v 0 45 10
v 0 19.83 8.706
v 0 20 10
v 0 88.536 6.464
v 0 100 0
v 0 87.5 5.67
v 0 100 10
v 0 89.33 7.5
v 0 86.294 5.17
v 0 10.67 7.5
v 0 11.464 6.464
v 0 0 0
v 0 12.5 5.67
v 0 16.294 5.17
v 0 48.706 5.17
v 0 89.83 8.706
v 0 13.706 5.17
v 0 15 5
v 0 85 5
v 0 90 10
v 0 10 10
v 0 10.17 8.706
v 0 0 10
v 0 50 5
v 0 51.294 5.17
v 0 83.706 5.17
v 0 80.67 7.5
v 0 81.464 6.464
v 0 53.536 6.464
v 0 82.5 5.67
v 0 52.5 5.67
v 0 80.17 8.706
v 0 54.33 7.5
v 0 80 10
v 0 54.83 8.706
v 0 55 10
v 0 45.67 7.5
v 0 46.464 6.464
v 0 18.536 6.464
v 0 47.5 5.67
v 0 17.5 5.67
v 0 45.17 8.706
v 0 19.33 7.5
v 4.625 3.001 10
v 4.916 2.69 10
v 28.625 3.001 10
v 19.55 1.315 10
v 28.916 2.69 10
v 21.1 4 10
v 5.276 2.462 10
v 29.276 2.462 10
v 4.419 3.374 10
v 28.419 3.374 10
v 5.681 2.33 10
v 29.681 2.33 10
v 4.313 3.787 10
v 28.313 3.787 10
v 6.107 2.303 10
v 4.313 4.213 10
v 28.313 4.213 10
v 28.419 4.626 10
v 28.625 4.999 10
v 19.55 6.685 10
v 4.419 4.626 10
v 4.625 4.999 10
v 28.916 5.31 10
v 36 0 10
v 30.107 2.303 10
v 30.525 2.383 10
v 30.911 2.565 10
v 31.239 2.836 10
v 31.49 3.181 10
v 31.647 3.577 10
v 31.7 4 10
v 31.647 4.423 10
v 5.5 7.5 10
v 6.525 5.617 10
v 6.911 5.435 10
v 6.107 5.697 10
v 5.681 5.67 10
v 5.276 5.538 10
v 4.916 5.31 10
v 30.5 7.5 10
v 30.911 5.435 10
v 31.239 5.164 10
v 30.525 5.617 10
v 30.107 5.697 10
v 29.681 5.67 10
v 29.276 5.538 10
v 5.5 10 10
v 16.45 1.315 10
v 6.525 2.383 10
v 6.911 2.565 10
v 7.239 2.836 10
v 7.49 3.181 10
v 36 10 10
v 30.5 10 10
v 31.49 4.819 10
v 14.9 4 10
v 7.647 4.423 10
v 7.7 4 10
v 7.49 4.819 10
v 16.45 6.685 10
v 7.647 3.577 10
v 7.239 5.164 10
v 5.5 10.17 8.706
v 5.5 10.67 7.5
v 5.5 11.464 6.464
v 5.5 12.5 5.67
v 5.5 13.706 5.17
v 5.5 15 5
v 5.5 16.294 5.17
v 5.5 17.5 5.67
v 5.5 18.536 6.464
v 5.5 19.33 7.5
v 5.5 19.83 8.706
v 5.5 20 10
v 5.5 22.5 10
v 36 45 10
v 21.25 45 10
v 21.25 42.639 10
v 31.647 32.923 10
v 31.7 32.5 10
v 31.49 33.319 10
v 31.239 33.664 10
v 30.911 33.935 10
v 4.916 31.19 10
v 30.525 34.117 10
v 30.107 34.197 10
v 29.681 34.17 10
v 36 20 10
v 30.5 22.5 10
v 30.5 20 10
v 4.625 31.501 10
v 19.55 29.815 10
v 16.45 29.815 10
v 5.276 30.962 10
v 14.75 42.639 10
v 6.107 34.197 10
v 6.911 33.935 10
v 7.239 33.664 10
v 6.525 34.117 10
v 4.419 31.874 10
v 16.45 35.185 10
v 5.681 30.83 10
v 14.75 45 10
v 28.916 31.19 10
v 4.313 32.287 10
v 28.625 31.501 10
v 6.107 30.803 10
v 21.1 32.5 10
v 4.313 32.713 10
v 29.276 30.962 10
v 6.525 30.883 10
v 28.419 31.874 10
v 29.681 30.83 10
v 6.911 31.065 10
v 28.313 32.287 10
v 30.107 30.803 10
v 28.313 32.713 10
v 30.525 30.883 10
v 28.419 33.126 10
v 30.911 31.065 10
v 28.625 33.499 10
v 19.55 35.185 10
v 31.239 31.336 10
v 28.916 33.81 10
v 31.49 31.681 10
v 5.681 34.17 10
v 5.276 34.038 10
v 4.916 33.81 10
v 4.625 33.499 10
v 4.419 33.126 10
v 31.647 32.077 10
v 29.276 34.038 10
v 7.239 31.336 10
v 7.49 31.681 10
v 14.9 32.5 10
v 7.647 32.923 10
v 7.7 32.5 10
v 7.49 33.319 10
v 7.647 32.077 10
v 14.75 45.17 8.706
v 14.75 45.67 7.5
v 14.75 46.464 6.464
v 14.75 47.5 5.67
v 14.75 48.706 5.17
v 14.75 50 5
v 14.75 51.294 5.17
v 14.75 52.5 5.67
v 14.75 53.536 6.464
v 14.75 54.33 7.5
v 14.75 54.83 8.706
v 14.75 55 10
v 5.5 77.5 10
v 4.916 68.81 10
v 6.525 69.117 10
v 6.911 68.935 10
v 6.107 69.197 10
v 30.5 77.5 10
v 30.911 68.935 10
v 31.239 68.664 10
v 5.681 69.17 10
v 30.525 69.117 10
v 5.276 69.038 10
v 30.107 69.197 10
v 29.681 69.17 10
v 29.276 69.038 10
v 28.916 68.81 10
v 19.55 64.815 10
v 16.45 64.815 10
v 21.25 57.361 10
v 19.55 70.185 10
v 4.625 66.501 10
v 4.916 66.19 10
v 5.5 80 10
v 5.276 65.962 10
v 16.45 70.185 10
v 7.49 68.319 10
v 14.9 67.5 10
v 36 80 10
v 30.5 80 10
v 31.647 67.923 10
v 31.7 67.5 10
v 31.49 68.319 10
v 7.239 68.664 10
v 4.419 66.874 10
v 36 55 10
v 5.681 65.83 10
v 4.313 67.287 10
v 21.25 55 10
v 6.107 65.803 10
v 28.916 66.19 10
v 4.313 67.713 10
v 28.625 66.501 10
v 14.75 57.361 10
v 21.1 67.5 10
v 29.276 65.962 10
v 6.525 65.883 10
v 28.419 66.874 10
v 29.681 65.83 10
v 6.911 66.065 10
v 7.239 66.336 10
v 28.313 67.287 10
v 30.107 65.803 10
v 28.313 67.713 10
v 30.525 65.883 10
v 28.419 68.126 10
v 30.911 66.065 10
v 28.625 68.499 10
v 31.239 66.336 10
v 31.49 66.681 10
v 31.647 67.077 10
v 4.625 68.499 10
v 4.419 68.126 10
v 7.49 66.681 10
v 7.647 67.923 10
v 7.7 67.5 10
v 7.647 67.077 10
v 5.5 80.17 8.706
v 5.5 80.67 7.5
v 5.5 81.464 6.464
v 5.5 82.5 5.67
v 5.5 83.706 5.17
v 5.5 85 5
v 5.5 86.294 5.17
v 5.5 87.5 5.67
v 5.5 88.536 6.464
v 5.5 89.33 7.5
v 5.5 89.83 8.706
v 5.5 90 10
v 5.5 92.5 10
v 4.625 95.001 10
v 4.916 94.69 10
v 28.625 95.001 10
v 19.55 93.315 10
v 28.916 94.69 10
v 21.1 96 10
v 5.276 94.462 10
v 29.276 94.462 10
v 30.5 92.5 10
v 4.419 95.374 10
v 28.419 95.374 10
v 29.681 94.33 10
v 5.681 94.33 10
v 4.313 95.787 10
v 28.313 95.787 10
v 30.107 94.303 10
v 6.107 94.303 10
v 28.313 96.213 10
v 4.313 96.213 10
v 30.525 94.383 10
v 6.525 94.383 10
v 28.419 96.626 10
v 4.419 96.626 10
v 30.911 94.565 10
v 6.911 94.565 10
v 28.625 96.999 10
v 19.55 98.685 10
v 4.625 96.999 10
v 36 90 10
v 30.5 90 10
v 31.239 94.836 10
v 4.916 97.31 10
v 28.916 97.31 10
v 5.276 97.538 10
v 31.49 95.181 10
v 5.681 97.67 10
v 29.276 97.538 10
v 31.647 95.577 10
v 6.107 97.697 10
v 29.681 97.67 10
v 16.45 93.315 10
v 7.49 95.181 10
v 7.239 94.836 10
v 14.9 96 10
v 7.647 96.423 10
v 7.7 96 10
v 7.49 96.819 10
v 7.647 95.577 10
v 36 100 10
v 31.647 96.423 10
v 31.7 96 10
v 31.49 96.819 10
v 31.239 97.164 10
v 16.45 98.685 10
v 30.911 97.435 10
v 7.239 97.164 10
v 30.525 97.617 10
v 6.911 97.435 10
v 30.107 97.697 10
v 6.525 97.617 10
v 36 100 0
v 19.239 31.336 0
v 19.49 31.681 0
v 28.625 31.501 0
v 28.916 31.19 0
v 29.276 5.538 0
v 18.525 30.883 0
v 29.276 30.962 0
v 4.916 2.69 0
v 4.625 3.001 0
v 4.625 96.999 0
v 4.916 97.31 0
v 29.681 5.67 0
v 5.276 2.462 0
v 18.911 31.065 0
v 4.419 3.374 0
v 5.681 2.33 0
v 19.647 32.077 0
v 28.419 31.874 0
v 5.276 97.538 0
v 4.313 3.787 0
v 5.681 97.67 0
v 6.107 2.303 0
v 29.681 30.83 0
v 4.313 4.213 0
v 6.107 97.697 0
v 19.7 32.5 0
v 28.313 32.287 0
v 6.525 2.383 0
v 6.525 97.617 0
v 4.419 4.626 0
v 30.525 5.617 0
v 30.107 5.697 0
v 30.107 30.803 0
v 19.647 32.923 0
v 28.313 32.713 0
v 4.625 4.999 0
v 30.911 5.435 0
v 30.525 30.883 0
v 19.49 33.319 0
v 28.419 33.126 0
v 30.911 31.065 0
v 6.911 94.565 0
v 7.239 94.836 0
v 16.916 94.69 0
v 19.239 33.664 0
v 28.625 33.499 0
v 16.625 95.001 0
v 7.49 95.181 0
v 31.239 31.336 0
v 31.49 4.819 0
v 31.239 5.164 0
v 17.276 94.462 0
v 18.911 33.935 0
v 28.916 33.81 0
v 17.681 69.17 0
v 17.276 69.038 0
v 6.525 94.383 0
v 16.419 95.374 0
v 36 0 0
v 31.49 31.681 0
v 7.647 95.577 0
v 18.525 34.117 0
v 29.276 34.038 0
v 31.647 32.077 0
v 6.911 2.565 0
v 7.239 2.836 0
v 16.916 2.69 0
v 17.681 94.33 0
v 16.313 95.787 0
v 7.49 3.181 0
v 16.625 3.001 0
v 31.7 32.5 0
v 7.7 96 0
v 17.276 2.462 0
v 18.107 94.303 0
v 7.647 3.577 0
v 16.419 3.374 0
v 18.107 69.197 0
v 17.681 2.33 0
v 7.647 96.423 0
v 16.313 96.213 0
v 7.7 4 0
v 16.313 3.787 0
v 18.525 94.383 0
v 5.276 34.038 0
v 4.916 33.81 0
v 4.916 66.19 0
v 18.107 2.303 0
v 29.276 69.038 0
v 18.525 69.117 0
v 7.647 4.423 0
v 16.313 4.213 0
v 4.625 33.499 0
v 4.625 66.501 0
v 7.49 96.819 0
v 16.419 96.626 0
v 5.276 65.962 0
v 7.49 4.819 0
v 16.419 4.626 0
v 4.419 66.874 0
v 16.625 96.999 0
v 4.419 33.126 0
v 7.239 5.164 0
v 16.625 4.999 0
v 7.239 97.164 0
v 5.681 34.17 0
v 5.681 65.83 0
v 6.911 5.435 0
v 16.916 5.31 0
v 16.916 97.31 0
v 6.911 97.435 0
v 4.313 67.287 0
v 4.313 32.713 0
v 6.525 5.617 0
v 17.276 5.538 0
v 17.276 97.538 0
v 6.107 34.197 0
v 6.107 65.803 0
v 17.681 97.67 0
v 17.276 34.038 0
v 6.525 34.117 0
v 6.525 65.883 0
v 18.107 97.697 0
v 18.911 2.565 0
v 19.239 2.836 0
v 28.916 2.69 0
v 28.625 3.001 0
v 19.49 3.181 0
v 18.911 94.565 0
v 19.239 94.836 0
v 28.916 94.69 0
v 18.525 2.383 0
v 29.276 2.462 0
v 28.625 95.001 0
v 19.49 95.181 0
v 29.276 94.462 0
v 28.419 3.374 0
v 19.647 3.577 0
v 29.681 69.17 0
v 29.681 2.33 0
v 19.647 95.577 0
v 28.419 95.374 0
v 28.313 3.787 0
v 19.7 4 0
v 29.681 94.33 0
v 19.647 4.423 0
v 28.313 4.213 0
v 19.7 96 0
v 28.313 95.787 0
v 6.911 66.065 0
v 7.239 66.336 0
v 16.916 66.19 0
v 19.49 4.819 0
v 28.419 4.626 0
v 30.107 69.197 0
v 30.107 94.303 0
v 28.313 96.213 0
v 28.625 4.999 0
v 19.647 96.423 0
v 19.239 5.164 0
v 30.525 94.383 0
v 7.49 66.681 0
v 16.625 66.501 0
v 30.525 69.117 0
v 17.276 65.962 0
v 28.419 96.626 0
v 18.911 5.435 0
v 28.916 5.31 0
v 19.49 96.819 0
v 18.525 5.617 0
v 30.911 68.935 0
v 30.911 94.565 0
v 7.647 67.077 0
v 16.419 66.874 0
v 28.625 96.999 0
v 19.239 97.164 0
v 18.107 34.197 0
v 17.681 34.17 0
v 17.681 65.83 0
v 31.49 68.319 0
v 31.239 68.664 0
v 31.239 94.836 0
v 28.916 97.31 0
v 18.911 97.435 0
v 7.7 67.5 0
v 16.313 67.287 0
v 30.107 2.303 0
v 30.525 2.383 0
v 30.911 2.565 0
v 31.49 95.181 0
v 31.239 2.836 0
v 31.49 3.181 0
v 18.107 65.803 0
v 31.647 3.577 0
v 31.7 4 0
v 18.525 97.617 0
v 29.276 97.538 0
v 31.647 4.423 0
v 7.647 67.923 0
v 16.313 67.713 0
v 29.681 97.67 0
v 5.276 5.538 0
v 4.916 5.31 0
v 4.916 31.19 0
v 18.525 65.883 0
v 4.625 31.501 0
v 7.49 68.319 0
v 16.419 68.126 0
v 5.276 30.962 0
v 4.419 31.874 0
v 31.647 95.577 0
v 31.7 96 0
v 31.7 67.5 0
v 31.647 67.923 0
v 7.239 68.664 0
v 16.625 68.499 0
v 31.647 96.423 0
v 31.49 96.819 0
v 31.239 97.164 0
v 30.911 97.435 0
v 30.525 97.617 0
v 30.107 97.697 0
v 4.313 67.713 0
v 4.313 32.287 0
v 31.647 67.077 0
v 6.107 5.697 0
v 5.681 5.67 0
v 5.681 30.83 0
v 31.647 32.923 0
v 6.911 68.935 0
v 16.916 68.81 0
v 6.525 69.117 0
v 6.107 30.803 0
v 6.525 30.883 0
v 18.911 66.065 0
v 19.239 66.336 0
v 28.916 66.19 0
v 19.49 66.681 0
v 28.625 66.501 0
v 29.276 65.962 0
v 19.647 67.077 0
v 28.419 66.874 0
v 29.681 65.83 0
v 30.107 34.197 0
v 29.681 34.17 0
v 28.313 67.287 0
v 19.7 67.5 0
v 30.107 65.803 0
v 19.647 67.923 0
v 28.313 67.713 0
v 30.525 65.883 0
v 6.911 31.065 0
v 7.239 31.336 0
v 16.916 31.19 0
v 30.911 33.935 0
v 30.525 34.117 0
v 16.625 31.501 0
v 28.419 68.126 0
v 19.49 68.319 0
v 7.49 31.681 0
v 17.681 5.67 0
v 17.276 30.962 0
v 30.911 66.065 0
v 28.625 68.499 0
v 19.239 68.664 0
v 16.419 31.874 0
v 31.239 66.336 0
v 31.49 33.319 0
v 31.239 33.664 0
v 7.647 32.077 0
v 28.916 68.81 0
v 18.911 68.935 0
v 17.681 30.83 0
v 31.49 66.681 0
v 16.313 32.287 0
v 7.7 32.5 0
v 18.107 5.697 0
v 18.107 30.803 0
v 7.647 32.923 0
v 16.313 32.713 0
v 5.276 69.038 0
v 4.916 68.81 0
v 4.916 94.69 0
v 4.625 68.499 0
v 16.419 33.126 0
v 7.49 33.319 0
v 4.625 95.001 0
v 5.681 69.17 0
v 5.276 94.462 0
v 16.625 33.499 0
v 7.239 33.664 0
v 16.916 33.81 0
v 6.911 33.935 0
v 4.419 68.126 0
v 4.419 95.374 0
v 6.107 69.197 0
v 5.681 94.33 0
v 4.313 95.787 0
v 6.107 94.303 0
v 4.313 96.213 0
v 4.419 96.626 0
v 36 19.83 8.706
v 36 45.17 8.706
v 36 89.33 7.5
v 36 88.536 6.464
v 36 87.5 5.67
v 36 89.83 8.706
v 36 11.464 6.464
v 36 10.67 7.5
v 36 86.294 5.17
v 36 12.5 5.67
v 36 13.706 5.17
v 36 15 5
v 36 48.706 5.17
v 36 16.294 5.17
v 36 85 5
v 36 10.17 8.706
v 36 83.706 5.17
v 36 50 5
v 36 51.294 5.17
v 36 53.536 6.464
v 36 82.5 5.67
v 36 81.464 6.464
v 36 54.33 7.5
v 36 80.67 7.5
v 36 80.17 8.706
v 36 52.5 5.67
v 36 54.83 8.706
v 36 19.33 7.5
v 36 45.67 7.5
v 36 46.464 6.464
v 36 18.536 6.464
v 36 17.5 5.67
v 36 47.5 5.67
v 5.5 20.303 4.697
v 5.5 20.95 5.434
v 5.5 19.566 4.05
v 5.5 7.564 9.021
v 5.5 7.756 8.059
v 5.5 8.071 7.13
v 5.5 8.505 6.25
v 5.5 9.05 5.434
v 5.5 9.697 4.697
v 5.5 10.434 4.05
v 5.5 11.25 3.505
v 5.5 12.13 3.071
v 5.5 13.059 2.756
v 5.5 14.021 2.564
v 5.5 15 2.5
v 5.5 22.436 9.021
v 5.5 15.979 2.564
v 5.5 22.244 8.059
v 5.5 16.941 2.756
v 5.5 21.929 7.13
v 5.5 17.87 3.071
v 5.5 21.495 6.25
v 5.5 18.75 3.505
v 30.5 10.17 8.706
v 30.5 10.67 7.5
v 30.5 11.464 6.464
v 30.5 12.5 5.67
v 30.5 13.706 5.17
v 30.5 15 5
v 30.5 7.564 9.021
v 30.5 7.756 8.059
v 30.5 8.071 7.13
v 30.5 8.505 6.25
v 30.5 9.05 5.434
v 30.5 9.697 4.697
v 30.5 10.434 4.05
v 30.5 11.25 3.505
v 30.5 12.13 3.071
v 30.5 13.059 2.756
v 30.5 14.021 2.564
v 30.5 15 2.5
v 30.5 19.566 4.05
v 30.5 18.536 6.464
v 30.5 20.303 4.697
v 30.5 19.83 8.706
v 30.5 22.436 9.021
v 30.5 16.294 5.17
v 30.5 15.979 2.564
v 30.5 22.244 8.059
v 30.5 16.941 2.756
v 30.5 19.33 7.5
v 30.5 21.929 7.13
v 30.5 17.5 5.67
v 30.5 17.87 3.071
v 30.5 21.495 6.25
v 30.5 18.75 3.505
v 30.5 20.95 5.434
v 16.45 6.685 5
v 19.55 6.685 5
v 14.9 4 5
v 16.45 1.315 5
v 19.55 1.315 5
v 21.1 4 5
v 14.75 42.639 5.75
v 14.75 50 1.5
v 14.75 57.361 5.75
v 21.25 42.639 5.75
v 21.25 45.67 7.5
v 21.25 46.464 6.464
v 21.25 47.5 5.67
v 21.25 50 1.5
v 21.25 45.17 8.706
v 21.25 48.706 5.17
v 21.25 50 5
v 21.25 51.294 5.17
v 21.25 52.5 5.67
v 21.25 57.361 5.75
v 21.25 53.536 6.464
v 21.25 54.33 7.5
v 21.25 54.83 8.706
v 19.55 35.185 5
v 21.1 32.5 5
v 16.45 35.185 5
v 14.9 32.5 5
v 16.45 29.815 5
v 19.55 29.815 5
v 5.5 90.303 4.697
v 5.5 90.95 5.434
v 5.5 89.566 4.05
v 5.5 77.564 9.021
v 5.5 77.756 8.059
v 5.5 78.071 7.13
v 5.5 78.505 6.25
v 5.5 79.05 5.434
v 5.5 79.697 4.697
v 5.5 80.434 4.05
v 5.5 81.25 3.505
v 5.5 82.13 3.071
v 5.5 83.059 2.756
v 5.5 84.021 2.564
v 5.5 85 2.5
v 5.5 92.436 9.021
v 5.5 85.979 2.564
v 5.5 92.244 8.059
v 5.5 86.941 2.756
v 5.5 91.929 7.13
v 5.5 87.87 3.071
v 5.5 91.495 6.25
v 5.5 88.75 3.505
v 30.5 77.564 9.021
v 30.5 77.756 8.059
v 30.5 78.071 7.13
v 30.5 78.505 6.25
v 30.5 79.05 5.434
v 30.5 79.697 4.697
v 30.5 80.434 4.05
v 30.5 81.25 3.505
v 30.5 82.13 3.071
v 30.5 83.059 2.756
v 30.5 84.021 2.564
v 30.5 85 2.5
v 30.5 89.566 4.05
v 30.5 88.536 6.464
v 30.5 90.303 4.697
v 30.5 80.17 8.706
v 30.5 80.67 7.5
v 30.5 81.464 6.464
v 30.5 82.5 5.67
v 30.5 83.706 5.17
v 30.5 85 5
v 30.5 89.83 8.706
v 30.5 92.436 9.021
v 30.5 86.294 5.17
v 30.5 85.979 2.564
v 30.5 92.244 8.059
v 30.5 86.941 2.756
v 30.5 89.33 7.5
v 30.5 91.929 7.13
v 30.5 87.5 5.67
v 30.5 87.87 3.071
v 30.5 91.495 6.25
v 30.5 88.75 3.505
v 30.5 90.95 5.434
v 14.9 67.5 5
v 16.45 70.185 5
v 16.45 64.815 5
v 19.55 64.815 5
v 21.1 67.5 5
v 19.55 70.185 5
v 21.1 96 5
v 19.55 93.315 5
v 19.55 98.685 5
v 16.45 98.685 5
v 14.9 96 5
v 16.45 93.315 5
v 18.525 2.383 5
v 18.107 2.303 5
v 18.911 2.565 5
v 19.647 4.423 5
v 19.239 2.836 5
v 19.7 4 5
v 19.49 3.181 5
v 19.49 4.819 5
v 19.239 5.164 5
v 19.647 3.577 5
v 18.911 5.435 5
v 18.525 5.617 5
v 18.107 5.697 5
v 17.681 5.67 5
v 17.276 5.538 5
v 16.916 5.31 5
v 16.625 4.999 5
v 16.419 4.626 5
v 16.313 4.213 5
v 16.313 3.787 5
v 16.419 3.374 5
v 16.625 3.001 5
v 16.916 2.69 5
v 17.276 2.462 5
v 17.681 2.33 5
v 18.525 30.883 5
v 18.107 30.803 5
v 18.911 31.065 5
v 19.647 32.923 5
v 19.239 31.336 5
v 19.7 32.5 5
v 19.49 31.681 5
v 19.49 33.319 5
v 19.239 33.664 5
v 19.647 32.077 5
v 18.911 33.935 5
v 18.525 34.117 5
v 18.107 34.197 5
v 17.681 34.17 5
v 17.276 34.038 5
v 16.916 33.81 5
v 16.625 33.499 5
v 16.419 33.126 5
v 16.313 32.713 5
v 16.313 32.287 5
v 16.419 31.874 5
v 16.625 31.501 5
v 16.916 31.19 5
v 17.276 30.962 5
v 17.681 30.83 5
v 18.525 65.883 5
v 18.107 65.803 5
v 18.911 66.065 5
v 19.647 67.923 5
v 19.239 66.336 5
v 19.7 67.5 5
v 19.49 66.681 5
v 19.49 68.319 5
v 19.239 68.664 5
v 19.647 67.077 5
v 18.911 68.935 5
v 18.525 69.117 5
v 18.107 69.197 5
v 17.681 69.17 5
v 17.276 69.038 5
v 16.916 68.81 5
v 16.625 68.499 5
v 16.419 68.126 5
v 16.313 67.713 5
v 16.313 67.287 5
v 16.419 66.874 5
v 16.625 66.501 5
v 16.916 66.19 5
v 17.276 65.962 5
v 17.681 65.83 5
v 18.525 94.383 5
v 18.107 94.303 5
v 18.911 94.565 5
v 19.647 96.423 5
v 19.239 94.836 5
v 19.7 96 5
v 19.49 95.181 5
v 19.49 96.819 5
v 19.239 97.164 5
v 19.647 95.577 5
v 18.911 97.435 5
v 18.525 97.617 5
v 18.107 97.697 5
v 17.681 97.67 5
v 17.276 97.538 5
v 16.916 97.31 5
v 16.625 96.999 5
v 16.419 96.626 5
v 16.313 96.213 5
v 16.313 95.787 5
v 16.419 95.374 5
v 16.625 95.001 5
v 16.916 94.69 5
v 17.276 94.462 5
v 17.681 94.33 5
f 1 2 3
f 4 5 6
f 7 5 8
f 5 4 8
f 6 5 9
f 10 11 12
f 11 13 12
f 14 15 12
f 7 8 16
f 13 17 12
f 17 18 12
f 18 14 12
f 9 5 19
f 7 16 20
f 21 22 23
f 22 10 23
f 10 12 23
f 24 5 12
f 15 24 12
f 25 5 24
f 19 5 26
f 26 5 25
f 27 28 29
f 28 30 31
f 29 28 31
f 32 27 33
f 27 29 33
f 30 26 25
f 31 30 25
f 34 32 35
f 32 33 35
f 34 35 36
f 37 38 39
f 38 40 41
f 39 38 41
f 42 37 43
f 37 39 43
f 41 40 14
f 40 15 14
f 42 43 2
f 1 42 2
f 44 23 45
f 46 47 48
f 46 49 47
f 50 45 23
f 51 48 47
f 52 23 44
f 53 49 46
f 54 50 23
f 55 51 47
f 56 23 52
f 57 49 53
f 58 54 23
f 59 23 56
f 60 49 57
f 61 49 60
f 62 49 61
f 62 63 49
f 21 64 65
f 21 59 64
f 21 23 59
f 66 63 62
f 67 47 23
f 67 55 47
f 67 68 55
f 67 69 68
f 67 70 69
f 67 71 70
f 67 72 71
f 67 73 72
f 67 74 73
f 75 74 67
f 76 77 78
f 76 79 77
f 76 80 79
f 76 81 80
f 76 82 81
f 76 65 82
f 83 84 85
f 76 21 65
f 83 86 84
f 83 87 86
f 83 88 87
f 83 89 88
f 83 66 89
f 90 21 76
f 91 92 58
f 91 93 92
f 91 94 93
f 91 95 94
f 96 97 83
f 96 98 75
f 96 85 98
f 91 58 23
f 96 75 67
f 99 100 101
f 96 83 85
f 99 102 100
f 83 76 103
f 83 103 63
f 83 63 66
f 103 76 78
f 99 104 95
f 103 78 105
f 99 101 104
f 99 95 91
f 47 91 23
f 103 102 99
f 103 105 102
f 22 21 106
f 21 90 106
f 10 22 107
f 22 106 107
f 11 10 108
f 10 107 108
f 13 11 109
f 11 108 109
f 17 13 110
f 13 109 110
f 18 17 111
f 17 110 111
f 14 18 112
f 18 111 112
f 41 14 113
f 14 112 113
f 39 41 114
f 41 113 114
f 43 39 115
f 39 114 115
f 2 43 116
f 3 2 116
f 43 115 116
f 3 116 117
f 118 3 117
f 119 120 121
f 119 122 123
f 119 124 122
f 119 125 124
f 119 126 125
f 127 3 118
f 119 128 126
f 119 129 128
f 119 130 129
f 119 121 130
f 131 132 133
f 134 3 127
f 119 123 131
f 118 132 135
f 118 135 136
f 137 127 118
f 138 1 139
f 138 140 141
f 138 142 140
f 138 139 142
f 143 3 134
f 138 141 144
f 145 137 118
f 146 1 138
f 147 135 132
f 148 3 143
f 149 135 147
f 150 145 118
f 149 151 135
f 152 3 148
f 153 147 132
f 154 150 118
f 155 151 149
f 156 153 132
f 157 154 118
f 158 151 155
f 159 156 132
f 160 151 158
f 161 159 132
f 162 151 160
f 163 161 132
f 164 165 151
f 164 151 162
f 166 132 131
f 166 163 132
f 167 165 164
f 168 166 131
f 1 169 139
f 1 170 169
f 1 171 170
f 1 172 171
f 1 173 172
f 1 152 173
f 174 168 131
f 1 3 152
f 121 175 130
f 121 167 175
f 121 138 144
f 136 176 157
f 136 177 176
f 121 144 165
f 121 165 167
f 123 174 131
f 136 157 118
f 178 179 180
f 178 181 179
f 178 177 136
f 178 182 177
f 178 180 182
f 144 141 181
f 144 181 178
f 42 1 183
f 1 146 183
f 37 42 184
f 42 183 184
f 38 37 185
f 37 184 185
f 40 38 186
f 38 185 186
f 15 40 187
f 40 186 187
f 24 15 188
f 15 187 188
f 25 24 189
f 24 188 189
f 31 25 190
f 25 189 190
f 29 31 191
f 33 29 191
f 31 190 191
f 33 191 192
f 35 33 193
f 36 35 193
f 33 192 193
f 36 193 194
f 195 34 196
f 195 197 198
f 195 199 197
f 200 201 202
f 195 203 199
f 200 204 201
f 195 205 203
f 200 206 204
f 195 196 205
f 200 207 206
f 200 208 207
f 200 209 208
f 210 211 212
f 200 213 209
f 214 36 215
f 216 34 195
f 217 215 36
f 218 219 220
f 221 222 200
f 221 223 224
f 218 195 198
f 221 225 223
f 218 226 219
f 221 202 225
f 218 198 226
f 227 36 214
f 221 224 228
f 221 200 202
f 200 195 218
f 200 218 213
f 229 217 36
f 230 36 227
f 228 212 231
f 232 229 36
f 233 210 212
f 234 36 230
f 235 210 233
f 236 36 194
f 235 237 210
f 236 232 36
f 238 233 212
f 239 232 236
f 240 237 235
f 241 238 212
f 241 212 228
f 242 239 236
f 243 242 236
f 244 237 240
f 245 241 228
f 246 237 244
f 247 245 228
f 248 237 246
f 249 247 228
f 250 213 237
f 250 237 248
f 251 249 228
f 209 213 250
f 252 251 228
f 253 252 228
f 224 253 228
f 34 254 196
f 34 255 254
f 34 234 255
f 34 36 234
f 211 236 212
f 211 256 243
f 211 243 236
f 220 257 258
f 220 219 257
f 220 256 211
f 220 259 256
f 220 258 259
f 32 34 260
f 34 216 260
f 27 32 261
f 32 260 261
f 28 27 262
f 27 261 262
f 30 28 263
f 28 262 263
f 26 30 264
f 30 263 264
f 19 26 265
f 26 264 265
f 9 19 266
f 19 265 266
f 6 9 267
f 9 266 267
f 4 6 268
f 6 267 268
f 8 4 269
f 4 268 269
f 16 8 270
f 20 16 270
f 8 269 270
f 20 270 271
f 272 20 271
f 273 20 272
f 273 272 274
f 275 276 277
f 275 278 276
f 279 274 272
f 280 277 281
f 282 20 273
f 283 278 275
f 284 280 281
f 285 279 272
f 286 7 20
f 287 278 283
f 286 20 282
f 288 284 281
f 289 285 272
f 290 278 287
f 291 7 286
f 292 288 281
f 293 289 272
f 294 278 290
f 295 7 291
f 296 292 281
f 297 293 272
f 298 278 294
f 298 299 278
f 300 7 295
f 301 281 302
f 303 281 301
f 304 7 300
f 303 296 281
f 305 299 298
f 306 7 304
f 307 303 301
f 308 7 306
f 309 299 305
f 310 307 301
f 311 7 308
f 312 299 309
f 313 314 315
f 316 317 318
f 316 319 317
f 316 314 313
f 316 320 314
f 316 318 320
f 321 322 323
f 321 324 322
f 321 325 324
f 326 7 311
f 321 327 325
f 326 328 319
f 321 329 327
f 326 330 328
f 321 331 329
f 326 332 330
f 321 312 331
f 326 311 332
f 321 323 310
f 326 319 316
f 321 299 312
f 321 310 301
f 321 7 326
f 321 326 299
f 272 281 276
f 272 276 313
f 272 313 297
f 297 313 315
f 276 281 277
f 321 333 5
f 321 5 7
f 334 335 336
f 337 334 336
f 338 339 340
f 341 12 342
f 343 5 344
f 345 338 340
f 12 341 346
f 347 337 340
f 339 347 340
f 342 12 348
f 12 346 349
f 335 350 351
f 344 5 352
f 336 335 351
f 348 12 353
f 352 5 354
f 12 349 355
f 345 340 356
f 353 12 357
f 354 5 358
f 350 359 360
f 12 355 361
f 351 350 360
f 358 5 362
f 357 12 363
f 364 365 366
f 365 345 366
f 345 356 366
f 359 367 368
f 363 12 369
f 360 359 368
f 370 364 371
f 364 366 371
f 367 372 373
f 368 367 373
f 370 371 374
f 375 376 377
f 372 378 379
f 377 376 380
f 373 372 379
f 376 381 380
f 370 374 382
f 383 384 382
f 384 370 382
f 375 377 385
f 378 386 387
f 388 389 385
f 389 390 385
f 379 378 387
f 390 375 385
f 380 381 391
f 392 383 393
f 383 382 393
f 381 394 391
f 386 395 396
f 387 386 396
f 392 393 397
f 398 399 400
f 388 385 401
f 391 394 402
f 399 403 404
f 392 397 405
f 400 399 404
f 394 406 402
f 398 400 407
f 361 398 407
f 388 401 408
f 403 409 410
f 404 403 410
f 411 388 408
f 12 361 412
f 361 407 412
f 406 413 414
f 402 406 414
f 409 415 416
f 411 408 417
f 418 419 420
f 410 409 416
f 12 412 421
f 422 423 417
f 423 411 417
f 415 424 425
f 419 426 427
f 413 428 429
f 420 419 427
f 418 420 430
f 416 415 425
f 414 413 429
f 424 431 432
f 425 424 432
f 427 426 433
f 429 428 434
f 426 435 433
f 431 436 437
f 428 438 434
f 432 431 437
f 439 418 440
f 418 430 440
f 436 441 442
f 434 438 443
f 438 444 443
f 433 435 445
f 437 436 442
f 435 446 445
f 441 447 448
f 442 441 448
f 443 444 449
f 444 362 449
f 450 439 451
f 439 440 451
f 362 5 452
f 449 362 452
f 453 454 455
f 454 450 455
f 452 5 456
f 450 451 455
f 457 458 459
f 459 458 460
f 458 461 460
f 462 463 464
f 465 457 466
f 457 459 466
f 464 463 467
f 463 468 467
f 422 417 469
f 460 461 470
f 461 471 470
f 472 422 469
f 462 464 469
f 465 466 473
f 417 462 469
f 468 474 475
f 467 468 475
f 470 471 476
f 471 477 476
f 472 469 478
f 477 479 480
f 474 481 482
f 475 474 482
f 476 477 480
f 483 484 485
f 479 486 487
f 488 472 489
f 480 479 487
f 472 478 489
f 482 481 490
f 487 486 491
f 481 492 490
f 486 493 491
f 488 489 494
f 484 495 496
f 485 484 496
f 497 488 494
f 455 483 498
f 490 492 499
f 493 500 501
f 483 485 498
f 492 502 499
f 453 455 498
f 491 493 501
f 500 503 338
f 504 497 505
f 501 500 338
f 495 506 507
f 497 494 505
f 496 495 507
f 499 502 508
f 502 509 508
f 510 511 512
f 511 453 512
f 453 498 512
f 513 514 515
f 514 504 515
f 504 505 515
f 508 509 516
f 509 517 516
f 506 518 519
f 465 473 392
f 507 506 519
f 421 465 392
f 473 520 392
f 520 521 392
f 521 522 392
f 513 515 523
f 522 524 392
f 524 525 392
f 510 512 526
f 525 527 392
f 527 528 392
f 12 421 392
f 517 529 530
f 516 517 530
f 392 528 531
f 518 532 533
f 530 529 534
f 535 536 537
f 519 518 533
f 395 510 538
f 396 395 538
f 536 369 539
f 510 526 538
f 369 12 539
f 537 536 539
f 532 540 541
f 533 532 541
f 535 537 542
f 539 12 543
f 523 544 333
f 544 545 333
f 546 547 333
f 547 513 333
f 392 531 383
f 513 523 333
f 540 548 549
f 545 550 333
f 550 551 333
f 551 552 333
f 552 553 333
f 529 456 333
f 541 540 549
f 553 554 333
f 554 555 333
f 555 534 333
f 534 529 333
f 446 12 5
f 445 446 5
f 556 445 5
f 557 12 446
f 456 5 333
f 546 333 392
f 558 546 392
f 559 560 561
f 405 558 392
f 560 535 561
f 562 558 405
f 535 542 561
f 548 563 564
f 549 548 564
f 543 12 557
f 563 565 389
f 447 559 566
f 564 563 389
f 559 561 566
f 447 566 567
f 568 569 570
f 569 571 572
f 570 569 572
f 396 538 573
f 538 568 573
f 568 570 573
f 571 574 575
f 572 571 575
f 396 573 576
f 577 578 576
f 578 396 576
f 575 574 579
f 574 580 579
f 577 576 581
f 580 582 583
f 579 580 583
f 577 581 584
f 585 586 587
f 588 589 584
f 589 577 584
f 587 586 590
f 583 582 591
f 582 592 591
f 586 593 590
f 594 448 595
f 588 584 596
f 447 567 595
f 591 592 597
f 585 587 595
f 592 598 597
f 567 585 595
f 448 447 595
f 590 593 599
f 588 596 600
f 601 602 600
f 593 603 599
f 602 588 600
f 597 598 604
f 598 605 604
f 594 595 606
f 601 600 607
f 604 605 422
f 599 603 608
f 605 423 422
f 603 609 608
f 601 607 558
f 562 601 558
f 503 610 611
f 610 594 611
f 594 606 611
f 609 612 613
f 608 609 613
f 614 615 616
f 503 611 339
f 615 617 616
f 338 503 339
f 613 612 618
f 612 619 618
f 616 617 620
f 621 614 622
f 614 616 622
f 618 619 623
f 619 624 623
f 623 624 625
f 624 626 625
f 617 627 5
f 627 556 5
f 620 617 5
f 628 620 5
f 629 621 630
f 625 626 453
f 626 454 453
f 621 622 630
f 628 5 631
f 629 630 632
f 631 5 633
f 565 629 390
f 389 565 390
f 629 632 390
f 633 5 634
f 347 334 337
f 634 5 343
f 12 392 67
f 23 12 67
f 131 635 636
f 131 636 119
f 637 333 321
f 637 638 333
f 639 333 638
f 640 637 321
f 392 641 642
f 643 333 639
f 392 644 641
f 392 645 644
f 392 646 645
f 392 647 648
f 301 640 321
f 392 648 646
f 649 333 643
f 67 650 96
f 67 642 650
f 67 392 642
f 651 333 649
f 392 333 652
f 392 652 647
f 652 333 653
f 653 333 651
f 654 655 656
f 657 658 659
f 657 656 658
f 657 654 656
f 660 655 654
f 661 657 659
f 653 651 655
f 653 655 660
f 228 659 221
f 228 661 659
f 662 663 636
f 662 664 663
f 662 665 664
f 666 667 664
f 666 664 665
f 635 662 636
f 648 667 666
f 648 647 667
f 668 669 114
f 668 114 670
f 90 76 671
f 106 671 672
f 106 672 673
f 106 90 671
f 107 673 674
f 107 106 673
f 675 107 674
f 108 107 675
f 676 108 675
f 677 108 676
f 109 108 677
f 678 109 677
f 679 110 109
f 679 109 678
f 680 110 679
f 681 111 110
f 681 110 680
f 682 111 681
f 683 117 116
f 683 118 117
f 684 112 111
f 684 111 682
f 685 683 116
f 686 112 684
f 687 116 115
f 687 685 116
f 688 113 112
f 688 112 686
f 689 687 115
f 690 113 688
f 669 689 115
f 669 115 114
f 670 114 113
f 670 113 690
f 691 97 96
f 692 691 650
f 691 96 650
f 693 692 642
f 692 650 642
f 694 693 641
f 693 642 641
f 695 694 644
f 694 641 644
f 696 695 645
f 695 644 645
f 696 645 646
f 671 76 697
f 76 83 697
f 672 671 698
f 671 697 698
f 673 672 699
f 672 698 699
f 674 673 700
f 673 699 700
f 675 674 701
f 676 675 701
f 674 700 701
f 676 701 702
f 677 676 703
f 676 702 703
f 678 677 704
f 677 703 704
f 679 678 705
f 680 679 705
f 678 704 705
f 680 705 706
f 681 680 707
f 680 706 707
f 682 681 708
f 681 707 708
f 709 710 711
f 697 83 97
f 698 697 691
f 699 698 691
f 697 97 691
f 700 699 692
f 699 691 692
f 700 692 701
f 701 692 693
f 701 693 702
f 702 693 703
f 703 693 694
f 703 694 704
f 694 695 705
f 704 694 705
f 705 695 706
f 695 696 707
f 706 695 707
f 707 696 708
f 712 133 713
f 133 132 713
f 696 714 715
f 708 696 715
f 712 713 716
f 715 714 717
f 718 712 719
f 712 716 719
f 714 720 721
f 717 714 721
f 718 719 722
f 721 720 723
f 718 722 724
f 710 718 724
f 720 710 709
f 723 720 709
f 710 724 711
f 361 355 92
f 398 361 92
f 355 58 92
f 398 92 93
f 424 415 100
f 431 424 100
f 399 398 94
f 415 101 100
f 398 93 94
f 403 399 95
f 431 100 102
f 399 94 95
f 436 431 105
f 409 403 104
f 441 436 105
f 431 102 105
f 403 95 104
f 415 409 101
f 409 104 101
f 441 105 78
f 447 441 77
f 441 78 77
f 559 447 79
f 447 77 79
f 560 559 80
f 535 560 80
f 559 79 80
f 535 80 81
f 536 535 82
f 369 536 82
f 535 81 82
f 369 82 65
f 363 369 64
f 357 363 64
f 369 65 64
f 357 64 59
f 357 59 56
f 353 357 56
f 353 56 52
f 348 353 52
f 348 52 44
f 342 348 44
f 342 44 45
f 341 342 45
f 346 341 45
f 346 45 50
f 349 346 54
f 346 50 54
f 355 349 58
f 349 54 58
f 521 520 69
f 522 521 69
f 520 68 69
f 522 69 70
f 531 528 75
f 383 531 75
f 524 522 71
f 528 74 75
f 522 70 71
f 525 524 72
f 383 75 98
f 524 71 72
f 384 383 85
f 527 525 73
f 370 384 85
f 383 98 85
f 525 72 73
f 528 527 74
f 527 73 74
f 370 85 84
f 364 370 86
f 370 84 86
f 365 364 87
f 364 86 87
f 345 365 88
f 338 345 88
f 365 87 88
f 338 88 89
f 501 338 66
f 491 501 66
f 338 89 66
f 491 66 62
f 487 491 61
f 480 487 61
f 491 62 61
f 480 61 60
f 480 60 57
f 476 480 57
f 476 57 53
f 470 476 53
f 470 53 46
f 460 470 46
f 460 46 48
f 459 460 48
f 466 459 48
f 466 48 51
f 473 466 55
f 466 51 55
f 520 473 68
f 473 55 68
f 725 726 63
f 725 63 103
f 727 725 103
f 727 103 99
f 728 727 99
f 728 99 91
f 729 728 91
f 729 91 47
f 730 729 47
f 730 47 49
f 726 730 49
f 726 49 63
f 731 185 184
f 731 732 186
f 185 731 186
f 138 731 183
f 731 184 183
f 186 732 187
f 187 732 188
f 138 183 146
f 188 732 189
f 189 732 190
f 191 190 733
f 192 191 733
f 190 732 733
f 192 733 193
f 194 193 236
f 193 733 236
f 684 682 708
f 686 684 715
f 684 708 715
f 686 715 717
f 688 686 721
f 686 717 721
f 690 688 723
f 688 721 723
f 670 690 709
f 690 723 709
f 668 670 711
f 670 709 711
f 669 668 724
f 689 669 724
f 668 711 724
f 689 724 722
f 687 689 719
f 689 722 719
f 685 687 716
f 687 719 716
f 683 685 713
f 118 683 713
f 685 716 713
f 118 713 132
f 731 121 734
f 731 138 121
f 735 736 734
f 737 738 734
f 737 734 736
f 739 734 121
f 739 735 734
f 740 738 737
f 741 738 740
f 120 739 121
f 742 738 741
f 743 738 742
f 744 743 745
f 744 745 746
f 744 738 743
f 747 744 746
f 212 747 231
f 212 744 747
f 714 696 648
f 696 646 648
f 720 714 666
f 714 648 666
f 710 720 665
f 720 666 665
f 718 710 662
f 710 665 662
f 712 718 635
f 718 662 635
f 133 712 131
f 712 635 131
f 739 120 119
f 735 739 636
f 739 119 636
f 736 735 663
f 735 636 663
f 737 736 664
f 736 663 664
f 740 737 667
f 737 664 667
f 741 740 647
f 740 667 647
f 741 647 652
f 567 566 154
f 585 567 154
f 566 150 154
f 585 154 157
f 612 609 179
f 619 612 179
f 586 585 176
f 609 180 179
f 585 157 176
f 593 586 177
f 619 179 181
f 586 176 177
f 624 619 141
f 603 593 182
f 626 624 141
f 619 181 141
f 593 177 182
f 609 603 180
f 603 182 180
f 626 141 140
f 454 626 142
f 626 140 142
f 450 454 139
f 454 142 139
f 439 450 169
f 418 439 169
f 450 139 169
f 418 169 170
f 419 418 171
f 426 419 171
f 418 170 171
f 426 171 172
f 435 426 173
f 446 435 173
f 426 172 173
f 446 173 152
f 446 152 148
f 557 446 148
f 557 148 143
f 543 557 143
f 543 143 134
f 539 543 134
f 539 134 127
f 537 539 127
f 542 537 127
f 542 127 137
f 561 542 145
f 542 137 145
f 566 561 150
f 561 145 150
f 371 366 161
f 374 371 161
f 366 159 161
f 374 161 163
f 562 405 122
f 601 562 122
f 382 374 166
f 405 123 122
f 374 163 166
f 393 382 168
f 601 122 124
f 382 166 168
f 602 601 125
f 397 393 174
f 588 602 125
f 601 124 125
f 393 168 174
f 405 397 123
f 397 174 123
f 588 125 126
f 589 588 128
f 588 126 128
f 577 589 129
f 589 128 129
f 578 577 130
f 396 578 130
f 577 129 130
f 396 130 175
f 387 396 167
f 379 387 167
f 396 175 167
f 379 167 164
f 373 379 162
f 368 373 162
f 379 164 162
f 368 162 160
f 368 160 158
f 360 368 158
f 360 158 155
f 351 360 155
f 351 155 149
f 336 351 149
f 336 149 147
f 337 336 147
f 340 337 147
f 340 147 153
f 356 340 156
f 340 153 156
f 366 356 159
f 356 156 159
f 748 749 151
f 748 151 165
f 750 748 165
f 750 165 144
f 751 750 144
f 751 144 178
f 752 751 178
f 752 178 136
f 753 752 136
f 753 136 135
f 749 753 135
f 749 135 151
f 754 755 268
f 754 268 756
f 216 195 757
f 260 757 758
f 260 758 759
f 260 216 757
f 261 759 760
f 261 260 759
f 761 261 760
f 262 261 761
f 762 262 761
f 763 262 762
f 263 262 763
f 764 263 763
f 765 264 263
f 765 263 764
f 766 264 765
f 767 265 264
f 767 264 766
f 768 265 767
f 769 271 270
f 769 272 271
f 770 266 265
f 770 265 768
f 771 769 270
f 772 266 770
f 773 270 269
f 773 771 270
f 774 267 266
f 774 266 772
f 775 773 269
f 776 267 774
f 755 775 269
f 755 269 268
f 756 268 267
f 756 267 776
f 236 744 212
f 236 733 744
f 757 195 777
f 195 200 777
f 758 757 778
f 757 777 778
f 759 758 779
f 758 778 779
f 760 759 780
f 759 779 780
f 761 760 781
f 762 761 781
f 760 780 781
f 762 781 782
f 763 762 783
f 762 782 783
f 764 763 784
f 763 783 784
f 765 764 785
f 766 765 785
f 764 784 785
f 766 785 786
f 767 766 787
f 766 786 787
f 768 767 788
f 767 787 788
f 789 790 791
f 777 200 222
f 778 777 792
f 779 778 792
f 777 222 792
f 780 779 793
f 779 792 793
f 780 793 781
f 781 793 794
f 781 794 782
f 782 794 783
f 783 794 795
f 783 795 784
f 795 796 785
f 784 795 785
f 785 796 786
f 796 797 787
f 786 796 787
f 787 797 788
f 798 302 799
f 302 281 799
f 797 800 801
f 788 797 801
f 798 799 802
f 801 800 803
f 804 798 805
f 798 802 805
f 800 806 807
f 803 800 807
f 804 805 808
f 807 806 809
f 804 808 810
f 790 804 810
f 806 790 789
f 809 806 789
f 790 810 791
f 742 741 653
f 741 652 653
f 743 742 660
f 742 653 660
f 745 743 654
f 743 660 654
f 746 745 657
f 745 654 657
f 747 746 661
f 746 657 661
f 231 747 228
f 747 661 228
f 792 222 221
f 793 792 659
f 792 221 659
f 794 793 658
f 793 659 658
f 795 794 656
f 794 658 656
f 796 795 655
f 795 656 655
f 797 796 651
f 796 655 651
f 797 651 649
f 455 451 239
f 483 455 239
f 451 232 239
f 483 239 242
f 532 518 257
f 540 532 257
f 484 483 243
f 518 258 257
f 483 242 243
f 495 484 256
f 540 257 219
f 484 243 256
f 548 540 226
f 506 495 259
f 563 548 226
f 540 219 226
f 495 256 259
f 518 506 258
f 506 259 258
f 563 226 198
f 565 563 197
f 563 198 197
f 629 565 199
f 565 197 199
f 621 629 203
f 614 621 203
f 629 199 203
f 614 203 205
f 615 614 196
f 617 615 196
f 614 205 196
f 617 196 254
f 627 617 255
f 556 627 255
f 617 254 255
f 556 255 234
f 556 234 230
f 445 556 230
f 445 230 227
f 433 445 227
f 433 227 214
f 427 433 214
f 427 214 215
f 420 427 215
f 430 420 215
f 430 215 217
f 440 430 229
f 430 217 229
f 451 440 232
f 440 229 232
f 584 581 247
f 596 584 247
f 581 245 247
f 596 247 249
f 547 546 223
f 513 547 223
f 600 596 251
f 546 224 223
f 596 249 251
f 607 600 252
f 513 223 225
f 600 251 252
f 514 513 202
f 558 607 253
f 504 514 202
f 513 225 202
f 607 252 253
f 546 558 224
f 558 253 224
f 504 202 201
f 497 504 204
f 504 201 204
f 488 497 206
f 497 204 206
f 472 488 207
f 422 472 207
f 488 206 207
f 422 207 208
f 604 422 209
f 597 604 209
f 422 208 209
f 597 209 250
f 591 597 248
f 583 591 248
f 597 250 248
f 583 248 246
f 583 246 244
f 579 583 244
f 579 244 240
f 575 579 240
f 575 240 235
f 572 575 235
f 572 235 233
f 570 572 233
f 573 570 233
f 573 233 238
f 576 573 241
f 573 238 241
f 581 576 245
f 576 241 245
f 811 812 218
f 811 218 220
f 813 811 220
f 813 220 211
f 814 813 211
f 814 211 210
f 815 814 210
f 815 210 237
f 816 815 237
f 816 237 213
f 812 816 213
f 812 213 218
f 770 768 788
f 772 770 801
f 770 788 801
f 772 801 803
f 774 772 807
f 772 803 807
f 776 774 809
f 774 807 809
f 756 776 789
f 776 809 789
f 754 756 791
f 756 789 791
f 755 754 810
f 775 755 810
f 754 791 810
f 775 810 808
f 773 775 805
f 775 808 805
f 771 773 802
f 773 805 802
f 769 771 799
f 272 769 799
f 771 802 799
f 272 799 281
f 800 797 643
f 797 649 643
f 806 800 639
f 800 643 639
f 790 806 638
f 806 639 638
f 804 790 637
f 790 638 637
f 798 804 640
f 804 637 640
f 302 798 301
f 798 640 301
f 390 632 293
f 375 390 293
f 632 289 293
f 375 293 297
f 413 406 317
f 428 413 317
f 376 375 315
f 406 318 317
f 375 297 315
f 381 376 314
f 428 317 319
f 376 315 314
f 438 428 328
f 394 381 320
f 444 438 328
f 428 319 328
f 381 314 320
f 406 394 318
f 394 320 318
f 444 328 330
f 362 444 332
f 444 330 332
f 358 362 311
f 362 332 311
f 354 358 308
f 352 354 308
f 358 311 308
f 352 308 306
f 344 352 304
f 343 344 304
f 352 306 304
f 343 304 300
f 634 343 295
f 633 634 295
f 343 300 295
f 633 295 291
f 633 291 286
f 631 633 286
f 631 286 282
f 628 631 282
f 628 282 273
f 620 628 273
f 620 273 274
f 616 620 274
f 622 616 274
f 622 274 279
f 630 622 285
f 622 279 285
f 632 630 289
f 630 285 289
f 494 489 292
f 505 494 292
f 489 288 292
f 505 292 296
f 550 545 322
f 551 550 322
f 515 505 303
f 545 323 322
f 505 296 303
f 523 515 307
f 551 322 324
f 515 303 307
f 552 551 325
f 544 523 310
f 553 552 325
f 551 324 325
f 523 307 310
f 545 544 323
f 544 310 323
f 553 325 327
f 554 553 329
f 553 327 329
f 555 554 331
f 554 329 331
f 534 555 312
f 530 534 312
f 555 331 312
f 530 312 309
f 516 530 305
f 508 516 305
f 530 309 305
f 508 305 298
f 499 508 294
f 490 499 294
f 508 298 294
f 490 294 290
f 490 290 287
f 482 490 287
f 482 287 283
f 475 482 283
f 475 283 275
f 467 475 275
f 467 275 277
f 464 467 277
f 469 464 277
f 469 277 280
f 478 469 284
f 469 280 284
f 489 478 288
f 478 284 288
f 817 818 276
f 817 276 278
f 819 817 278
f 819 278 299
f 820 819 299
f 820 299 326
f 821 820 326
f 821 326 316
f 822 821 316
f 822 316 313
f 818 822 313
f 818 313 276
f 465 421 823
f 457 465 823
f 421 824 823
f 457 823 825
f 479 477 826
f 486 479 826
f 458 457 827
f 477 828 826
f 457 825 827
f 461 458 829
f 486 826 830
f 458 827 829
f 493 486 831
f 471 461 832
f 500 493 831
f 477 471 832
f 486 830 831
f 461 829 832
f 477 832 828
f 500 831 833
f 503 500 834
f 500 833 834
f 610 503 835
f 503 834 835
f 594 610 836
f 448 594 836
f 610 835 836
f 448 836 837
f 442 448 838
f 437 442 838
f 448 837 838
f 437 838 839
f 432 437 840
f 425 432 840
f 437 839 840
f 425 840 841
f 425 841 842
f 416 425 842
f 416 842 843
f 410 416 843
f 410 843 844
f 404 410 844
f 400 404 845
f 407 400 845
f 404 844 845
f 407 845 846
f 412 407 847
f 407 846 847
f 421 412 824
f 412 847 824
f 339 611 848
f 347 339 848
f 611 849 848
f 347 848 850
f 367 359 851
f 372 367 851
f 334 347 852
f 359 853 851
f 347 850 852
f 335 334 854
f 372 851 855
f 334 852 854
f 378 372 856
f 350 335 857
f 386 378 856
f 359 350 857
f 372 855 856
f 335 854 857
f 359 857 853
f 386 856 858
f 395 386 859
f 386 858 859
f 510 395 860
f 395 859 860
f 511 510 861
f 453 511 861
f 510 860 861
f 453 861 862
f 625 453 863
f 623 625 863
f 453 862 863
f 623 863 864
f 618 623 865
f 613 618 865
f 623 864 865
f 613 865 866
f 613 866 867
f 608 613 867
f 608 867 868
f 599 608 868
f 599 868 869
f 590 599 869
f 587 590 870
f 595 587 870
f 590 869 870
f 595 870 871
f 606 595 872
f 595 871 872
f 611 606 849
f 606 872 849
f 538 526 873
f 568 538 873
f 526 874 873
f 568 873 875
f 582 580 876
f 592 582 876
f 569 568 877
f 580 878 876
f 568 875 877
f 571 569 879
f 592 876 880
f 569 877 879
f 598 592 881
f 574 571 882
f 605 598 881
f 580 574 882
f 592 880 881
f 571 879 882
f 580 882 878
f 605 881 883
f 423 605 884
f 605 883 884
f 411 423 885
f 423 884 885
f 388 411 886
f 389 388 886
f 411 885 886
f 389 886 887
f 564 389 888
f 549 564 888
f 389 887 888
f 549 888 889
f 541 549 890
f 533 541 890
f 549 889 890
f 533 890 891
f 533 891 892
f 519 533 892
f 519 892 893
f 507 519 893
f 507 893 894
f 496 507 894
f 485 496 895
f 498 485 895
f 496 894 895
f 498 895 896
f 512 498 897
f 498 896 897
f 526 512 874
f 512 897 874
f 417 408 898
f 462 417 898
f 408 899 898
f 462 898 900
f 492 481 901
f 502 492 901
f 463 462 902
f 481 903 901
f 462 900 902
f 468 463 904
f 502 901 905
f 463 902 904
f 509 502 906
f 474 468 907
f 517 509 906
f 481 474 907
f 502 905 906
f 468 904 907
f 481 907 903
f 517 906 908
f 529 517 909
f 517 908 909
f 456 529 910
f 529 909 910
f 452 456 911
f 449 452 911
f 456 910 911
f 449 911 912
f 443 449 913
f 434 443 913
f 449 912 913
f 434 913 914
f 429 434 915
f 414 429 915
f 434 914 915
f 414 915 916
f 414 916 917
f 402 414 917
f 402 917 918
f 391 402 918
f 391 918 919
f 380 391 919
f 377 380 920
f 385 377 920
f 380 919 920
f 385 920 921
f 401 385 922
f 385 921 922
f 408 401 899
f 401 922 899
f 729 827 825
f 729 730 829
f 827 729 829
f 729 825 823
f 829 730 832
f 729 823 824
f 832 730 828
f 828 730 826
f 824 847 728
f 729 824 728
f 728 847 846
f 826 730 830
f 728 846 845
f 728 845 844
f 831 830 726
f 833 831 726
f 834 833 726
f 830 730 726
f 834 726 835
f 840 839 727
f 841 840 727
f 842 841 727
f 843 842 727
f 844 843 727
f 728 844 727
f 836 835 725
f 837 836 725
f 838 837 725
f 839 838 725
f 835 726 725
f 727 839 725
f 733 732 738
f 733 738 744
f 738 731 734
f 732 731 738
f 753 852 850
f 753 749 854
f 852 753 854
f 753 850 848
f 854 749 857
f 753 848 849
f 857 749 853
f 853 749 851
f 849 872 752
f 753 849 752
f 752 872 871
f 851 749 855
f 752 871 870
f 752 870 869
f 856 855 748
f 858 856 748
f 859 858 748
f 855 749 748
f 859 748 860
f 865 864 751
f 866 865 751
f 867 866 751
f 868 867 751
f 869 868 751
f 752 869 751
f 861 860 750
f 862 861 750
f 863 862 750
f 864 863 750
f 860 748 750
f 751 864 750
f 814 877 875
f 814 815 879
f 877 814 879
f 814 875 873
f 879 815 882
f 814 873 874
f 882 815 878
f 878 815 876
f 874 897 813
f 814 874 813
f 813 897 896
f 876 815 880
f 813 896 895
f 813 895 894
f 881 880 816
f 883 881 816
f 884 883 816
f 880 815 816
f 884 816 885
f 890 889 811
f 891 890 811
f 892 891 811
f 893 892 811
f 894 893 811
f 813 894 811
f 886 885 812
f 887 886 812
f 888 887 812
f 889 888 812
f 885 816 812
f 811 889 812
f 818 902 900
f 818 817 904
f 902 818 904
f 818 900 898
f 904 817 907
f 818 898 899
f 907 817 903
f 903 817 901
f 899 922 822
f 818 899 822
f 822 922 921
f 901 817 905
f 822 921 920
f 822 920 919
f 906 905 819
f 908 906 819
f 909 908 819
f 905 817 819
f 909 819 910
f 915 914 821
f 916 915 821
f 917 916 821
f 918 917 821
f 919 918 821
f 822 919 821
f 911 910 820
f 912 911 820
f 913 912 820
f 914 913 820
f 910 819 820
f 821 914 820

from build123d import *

# Parameters (mm, degrees)
PRISM004_DEPTH          = 5
PRISM003_DEPTH          = 5
PRISM002_DEPTH          = 5
PRISM001_DEPTH          = 5
CYLINDER016_R           = 1.7
CYLINDER016_DEPTH       = 10
CYLINDER015_R           = 1.7
CYLINDER015_DEPTH       = 10
CYLINDER014_R           = 1.7
CYLINDER014_DEPTH       = 10
CYLINDER013_R           = 1.7
CYLINDER013_DEPTH       = 10
CYLINDER012_R           = 1.7
CYLINDER012_DEPTH       = 10
CYLINDER011_R           = 1.7
CYLINDER011_DEPTH       = 10
CYLINDER010_R           = 1.7
CYLINDER010_DEPTH       = 10
CYLINDER009_R           = 1.7
CYLINDER009_DEPTH       = 10
CYLINDER008_R           = 1.7
CYLINDER008_DEPTH       = 10
CYLINDER007_R           = 1.7
CYLINDER007_DEPTH       = 10
CYLINDER006_R           = 1.7
CYLINDER006_DEPTH       = 10
CYLINDER005_R           = 1.7
CYLINDER005_DEPTH       = 10
PRISM_DEPTH             = 6.5
PRISM_PITCH_ANGLE       = 90
CYLINDER004_R           = 7.5
CYLINDER004_DEPTH       = 25
CYLINDER004_PITCH_ANGLE = 90
CYLINDER003_R           = 7.5
CYLINDER003_DEPTH       = 25
CYLINDER003_PITCH_ANGLE = 90
CYLINDER002_R           = 5
CYLINDER002_DEPTH       = 36
CYLINDER002_PITCH_ANGLE = 90
CYLINDER001_R           = 5
CYLINDER001_DEPTH       = 36
CYLINDER001_PITCH_ANGLE = 90
CYLINDER_R              = 5
CYLINDER_DEPTH          = 36
CYLINDER_PITCH_ANGLE    = 90
BOX_W                   = 36
BOX_H                   = 100
BOX_DEPTH               = 10


with BuildPart() as prisma004:
    # Prism004 → Prism004 (new body)
    with BuildSketch(Plane(origin=(18, 96, 5), x_dir=(1, 0, 0), z_dir=(0, 0, 1))):
        Polygon((3.1, 0), (1.55, 2.684679), (-1.55, 2.684679), (-3.1, 0), (-1.55, -2.684679), (1.55, -2.684679), align=None)
    extrude(amount=PRISM004_DEPTH)


with BuildPart() as prisma003:
    # Prism003 → Prism003 (new body)
    with BuildSketch(Plane(origin=(18, 67.5, 5), x_dir=(1, 0, 0), z_dir=(0, 0, 1))):
        Polygon((3.1, 0), (1.55, 2.684679), (-1.55, 2.684679), (-3.1, 0), (-1.55, -2.684679), (1.55, -2.684679), align=None)
    extrude(amount=PRISM003_DEPTH)


with BuildPart() as prisma002:
    # Prism002 → Prism002 (new body)
    with BuildSketch(Plane(origin=(18, 32.5, 5), x_dir=(1, 0, 0), z_dir=(0, 0, 1))):
        Polygon((3.1, 0), (1.55, 2.684679), (-1.55, 2.684679), (-3.1, 0), (-1.55, -2.684679), (1.55, -2.684679), align=None)
    extrude(amount=PRISM002_DEPTH)


with BuildPart() as prisma001:
    # Prism001 → Prism001 (new body)
    with BuildSketch(Plane(origin=(18, 4, 5), x_dir=(1, 0, 0), z_dir=(0, 0, 1))):
        Polygon((3.1, 0), (1.55, 2.684679), (-1.55, 2.684679), (-3.1, 0), (-1.55, -2.684679), (1.55, -2.684679), align=None)
    extrude(amount=PRISM001_DEPTH)


with BuildPart() as cilindro016:
    # Cylinder016 → Cylinder016 (new body)
    with BuildSketch(Plane(origin=(18, 96, 0), x_dir=(1, 0, 0), z_dir=(0, 0, 1))):
        Circle(CYLINDER016_R)
    extrude(amount=CYLINDER016_DEPTH)


with BuildPart() as cilindro015:
    # Cylinder015 → Cylinder015 (new body)
    with BuildSketch(Plane(origin=(18, 67.5, 0), x_dir=(1, 0, 0), z_dir=(0, 0, 1))):
        Circle(CYLINDER015_R)
    extrude(amount=CYLINDER015_DEPTH)


with BuildPart() as cilindro014:
    # Cylinder014 → Cylinder014 (new body)
    with BuildSketch(Plane(origin=(18, 32.5, 0), x_dir=(1, 0, 0), z_dir=(0, 0, 1))):
        Circle(CYLINDER014_R)
    extrude(amount=CYLINDER014_DEPTH)


with BuildPart() as cilindro013:
    # Cylinder013 → Cylinder013 (new body)
    with BuildSketch(Plane(origin=(18, 4, 0), x_dir=(1, 0, 0), z_dir=(0, 0, 1))):
        Circle(CYLINDER013_R)
    extrude(amount=CYLINDER013_DEPTH)


with BuildPart() as cilindro012:
    # Cylinder012 → Cylinder012 (new body)
    with BuildSketch(Plane(origin=(30, 96, 0), x_dir=(1, 0, 0), z_dir=(0, 0, 1))):
        Circle(CYLINDER012_R)
    extrude(amount=CYLINDER012_DEPTH)


with BuildPart() as cilindro011:
    # Cylinder011 → Cylinder011 (new body)
    with BuildSketch(Plane(origin=(6, 96, 0), x_dir=(1, 0, 0), z_dir=(0, 0, 1))):
        Circle(CYLINDER011_R)
    extrude(amount=CYLINDER011_DEPTH)


with BuildPart() as cilindro010:
    # Cylinder010 → Cylinder010 (new body)
    with BuildSketch(Plane(origin=(30, 67.5, 0), x_dir=(1, 0, 0), z_dir=(0, 0, 1))):
        Circle(CYLINDER010_R)
    extrude(amount=CYLINDER010_DEPTH)


with BuildPart() as cilindro009:
    # Cylinder009 → Cylinder009 (new body)
    with BuildSketch(Plane(origin=(6, 67.5, 0), x_dir=(1, 0, 0), z_dir=(0, 0, 1))):
        Circle(CYLINDER009_R)
    extrude(amount=CYLINDER009_DEPTH)


with BuildPart() as cilindro008:
    # Cylinder008 → Cylinder008 (new body)
    with BuildSketch(Plane(origin=(30, 32.5, 0), x_dir=(1, 0, 0), z_dir=(0, 0, 1))):
        Circle(CYLINDER008_R)
    extrude(amount=CYLINDER008_DEPTH)


with BuildPart() as cilindro007:
    # Cylinder007 → Cylinder007 (new body)
    with BuildSketch(Plane(origin=(6, 32.5, 0), x_dir=(1, 0, 0), z_dir=(0, 0, 1))):
        Circle(CYLINDER007_R)
    extrude(amount=CYLINDER007_DEPTH)


with BuildPart() as cilindro006:
    # Cylinder006 → Cylinder006 (new body)
    with BuildSketch(Plane(origin=(30, 4, 0), x_dir=(1, 0, 0), z_dir=(0, 0, 1))):
        Circle(CYLINDER006_R)
    extrude(amount=CYLINDER006_DEPTH)


with BuildPart() as cilindro005:
    # Cylinder005 → Cylinder005 (new body)
    with BuildSketch(Plane(origin=(6, 4, 0), x_dir=(1, 0, 0), z_dir=(0, 0, 1))):
        Circle(CYLINDER005_R)
    extrude(amount=CYLINDER005_DEPTH)


with BuildPart() as prisma:
    # Prism → Prism (new body)
    with BuildSketch(Plane.XY):
        Polygon((8.5, 0), (4.25, 7.361216), (-4.25, 7.361216), (-8.5, 0), (-4.25, -7.361216), (4.25, -7.361216), align=None)
    extrude(amount=PRISM_DEPTH)


with BuildPart() as prisma_1:
    # Prism pitch: moved
    add(prisma.part.rotate(Axis((0, 0, 0), (0, 1, 0)), PRISM_PITCH_ANGLE))


with BuildPart() as prisma_2:
    # Prism placement: moved
    add(prisma_1.part.moved(Location((14.75, 50, 10))))


with BuildPart() as cilindro004:
    # Cylinder004 → Cylinder004 (new body)
    with BuildSketch(Plane.XY):
        Circle(CYLINDER004_R)
    extrude(amount=CYLINDER004_DEPTH)


with BuildPart() as cilindro004_1:
    # Cylinder004 pitch: moved
    add(cilindro004.part.rotate(Axis((0, 0, 0), (0, 1, 0)), CYLINDER004_PITCH_ANGLE))


with BuildPart() as cilindro004_2:
    # Cylinder004 placement: moved
    add(cilindro004_1.part.moved(Location((5.5, 85, 10))))


with BuildPart() as cilindro003:
    # Cylinder003 → Cylinder003 (new body)
    with BuildSketch(Plane.XY):
        Circle(CYLINDER003_R)
    extrude(amount=CYLINDER003_DEPTH)


with BuildPart() as cilindro003_1:
    # Cylinder003 pitch: moved
    add(cilindro003.part.rotate(Axis((0, 0, 0), (0, 1, 0)), CYLINDER003_PITCH_ANGLE))


with BuildPart() as cilindro003_2:
    # Cylinder003 placement: moved
    add(cilindro003_1.part.moved(Location((5.5, 15, 10))))


with BuildPart() as cilindro002:
    # Cylinder002 → Cylinder002 (new body)
    with BuildSketch(Plane.XY):
        Circle(CYLINDER002_R)
    extrude(amount=CYLINDER002_DEPTH)


with BuildPart() as cilindro002_1:
    # Cylinder002 pitch: moved
    add(cilindro002.part.rotate(Axis((0, 0, 0), (0, 1, 0)), CYLINDER002_PITCH_ANGLE))


with BuildPart() as cilindro002_2:
    # Cylinder002 placement: moved
    add(cilindro002_1.part.moved(Location((0, 85, 10))))


with BuildPart() as cilindro001:
    # Cylinder001 → Cylinder001 (new body)
    with BuildSketch(Plane.XY):
        Circle(CYLINDER001_R)
    extrude(amount=CYLINDER001_DEPTH)


with BuildPart() as cilindro001_1:
    # Cylinder001 pitch: moved
    add(cilindro001.part.rotate(Axis((0, 0, 0), (0, 1, 0)), CYLINDER001_PITCH_ANGLE))


with BuildPart() as cilindro001_2:
    # Cylinder001 placement: moved
    add(cilindro001_1.part.moved(Location((0, 50, 10))))


with BuildPart() as cilindro:
    # Cylinder → Cylinder (new body)
    with BuildSketch(Plane.XY):
        Circle(CYLINDER_R)
    extrude(amount=CYLINDER_DEPTH)


with BuildPart() as cilindro_1:
    # Cylinder pitch: moved
    add(cilindro.part.rotate(Axis((0, 0, 0), (0, 1, 0)), CYLINDER_PITCH_ANGLE))


with BuildPart() as cilindro_2:
    # Cylinder placement: moved
    add(cilindro_1.part.moved(Location((0, 15, 10))))


with BuildPart() as cut021:
    # Box → Box (new body)
    with BuildSketch(Plane.XY):
        with Locations((18, 50)):
            Rectangle(BOX_W, BOX_H)
    extrude(amount=BOX_DEPTH)

    # Cut: cut Cilindro
    add(cilindro_2.part, mode=Mode.SUBTRACT)

    # Cut001: cut Cilindro001
    add(cilindro001_2.part, mode=Mode.SUBTRACT)

    # Cut002: cut Cilindro002
    add(cilindro002_2.part, mode=Mode.SUBTRACT)

    # Cut003: cut Cilindro003
    add(cilindro003_2.part, mode=Mode.SUBTRACT)

    # Cut004: cut Cilindro004
    add(cilindro004_2.part, mode=Mode.SUBTRACT)

    # Cut005: cut Prisma
    add(prisma_2.part, mode=Mode.SUBTRACT)

    # Cut006: cut Cilindro005
    add(cilindro005.part, mode=Mode.SUBTRACT)

    # Cut007: cut Cilindro006
    add(cilindro006.part, mode=Mode.SUBTRACT)

    # Cut008: cut Cilindro007
    add(cilindro007.part, mode=Mode.SUBTRACT)

    # Cut009: cut Cilindro008
    add(cilindro008.part, mode=Mode.SUBTRACT)

    # Cut010: cut Cilindro009
    add(cilindro009.part, mode=Mode.SUBTRACT)

    # Cut011: cut Cilindro010
    add(cilindro010.part, mode=Mode.SUBTRACT)

    # Cut012: cut Cilindro011
    add(cilindro011.part, mode=Mode.SUBTRACT)

    # Cut013: cut Cilindro012
    add(cilindro012.part, mode=Mode.SUBTRACT)

    # Cut014: cut Cilindro013
    add(cilindro013.part, mode=Mode.SUBTRACT)

    # Cut015: cut Cilindro014
    add(cilindro014.part, mode=Mode.SUBTRACT)

    # Cut016: cut Cilindro015
    add(cilindro015.part, mode=Mode.SUBTRACT)

    # Cut017: cut Cilindro016
    add(cilindro016.part, mode=Mode.SUBTRACT)

    # Cut018: cut Prisma001
    add(prisma001.part, mode=Mode.SUBTRACT)

    # Cut019: cut Prisma002
    add(prisma002.part, mode=Mode.SUBTRACT)

    # Cut020: cut Prisma003
    add(prisma003.part, mode=Mode.SUBTRACT)

    # Cut021: cut Prisma004
    add(prisma004.part, mode=Mode.SUBTRACT)


solid = cut021.part
